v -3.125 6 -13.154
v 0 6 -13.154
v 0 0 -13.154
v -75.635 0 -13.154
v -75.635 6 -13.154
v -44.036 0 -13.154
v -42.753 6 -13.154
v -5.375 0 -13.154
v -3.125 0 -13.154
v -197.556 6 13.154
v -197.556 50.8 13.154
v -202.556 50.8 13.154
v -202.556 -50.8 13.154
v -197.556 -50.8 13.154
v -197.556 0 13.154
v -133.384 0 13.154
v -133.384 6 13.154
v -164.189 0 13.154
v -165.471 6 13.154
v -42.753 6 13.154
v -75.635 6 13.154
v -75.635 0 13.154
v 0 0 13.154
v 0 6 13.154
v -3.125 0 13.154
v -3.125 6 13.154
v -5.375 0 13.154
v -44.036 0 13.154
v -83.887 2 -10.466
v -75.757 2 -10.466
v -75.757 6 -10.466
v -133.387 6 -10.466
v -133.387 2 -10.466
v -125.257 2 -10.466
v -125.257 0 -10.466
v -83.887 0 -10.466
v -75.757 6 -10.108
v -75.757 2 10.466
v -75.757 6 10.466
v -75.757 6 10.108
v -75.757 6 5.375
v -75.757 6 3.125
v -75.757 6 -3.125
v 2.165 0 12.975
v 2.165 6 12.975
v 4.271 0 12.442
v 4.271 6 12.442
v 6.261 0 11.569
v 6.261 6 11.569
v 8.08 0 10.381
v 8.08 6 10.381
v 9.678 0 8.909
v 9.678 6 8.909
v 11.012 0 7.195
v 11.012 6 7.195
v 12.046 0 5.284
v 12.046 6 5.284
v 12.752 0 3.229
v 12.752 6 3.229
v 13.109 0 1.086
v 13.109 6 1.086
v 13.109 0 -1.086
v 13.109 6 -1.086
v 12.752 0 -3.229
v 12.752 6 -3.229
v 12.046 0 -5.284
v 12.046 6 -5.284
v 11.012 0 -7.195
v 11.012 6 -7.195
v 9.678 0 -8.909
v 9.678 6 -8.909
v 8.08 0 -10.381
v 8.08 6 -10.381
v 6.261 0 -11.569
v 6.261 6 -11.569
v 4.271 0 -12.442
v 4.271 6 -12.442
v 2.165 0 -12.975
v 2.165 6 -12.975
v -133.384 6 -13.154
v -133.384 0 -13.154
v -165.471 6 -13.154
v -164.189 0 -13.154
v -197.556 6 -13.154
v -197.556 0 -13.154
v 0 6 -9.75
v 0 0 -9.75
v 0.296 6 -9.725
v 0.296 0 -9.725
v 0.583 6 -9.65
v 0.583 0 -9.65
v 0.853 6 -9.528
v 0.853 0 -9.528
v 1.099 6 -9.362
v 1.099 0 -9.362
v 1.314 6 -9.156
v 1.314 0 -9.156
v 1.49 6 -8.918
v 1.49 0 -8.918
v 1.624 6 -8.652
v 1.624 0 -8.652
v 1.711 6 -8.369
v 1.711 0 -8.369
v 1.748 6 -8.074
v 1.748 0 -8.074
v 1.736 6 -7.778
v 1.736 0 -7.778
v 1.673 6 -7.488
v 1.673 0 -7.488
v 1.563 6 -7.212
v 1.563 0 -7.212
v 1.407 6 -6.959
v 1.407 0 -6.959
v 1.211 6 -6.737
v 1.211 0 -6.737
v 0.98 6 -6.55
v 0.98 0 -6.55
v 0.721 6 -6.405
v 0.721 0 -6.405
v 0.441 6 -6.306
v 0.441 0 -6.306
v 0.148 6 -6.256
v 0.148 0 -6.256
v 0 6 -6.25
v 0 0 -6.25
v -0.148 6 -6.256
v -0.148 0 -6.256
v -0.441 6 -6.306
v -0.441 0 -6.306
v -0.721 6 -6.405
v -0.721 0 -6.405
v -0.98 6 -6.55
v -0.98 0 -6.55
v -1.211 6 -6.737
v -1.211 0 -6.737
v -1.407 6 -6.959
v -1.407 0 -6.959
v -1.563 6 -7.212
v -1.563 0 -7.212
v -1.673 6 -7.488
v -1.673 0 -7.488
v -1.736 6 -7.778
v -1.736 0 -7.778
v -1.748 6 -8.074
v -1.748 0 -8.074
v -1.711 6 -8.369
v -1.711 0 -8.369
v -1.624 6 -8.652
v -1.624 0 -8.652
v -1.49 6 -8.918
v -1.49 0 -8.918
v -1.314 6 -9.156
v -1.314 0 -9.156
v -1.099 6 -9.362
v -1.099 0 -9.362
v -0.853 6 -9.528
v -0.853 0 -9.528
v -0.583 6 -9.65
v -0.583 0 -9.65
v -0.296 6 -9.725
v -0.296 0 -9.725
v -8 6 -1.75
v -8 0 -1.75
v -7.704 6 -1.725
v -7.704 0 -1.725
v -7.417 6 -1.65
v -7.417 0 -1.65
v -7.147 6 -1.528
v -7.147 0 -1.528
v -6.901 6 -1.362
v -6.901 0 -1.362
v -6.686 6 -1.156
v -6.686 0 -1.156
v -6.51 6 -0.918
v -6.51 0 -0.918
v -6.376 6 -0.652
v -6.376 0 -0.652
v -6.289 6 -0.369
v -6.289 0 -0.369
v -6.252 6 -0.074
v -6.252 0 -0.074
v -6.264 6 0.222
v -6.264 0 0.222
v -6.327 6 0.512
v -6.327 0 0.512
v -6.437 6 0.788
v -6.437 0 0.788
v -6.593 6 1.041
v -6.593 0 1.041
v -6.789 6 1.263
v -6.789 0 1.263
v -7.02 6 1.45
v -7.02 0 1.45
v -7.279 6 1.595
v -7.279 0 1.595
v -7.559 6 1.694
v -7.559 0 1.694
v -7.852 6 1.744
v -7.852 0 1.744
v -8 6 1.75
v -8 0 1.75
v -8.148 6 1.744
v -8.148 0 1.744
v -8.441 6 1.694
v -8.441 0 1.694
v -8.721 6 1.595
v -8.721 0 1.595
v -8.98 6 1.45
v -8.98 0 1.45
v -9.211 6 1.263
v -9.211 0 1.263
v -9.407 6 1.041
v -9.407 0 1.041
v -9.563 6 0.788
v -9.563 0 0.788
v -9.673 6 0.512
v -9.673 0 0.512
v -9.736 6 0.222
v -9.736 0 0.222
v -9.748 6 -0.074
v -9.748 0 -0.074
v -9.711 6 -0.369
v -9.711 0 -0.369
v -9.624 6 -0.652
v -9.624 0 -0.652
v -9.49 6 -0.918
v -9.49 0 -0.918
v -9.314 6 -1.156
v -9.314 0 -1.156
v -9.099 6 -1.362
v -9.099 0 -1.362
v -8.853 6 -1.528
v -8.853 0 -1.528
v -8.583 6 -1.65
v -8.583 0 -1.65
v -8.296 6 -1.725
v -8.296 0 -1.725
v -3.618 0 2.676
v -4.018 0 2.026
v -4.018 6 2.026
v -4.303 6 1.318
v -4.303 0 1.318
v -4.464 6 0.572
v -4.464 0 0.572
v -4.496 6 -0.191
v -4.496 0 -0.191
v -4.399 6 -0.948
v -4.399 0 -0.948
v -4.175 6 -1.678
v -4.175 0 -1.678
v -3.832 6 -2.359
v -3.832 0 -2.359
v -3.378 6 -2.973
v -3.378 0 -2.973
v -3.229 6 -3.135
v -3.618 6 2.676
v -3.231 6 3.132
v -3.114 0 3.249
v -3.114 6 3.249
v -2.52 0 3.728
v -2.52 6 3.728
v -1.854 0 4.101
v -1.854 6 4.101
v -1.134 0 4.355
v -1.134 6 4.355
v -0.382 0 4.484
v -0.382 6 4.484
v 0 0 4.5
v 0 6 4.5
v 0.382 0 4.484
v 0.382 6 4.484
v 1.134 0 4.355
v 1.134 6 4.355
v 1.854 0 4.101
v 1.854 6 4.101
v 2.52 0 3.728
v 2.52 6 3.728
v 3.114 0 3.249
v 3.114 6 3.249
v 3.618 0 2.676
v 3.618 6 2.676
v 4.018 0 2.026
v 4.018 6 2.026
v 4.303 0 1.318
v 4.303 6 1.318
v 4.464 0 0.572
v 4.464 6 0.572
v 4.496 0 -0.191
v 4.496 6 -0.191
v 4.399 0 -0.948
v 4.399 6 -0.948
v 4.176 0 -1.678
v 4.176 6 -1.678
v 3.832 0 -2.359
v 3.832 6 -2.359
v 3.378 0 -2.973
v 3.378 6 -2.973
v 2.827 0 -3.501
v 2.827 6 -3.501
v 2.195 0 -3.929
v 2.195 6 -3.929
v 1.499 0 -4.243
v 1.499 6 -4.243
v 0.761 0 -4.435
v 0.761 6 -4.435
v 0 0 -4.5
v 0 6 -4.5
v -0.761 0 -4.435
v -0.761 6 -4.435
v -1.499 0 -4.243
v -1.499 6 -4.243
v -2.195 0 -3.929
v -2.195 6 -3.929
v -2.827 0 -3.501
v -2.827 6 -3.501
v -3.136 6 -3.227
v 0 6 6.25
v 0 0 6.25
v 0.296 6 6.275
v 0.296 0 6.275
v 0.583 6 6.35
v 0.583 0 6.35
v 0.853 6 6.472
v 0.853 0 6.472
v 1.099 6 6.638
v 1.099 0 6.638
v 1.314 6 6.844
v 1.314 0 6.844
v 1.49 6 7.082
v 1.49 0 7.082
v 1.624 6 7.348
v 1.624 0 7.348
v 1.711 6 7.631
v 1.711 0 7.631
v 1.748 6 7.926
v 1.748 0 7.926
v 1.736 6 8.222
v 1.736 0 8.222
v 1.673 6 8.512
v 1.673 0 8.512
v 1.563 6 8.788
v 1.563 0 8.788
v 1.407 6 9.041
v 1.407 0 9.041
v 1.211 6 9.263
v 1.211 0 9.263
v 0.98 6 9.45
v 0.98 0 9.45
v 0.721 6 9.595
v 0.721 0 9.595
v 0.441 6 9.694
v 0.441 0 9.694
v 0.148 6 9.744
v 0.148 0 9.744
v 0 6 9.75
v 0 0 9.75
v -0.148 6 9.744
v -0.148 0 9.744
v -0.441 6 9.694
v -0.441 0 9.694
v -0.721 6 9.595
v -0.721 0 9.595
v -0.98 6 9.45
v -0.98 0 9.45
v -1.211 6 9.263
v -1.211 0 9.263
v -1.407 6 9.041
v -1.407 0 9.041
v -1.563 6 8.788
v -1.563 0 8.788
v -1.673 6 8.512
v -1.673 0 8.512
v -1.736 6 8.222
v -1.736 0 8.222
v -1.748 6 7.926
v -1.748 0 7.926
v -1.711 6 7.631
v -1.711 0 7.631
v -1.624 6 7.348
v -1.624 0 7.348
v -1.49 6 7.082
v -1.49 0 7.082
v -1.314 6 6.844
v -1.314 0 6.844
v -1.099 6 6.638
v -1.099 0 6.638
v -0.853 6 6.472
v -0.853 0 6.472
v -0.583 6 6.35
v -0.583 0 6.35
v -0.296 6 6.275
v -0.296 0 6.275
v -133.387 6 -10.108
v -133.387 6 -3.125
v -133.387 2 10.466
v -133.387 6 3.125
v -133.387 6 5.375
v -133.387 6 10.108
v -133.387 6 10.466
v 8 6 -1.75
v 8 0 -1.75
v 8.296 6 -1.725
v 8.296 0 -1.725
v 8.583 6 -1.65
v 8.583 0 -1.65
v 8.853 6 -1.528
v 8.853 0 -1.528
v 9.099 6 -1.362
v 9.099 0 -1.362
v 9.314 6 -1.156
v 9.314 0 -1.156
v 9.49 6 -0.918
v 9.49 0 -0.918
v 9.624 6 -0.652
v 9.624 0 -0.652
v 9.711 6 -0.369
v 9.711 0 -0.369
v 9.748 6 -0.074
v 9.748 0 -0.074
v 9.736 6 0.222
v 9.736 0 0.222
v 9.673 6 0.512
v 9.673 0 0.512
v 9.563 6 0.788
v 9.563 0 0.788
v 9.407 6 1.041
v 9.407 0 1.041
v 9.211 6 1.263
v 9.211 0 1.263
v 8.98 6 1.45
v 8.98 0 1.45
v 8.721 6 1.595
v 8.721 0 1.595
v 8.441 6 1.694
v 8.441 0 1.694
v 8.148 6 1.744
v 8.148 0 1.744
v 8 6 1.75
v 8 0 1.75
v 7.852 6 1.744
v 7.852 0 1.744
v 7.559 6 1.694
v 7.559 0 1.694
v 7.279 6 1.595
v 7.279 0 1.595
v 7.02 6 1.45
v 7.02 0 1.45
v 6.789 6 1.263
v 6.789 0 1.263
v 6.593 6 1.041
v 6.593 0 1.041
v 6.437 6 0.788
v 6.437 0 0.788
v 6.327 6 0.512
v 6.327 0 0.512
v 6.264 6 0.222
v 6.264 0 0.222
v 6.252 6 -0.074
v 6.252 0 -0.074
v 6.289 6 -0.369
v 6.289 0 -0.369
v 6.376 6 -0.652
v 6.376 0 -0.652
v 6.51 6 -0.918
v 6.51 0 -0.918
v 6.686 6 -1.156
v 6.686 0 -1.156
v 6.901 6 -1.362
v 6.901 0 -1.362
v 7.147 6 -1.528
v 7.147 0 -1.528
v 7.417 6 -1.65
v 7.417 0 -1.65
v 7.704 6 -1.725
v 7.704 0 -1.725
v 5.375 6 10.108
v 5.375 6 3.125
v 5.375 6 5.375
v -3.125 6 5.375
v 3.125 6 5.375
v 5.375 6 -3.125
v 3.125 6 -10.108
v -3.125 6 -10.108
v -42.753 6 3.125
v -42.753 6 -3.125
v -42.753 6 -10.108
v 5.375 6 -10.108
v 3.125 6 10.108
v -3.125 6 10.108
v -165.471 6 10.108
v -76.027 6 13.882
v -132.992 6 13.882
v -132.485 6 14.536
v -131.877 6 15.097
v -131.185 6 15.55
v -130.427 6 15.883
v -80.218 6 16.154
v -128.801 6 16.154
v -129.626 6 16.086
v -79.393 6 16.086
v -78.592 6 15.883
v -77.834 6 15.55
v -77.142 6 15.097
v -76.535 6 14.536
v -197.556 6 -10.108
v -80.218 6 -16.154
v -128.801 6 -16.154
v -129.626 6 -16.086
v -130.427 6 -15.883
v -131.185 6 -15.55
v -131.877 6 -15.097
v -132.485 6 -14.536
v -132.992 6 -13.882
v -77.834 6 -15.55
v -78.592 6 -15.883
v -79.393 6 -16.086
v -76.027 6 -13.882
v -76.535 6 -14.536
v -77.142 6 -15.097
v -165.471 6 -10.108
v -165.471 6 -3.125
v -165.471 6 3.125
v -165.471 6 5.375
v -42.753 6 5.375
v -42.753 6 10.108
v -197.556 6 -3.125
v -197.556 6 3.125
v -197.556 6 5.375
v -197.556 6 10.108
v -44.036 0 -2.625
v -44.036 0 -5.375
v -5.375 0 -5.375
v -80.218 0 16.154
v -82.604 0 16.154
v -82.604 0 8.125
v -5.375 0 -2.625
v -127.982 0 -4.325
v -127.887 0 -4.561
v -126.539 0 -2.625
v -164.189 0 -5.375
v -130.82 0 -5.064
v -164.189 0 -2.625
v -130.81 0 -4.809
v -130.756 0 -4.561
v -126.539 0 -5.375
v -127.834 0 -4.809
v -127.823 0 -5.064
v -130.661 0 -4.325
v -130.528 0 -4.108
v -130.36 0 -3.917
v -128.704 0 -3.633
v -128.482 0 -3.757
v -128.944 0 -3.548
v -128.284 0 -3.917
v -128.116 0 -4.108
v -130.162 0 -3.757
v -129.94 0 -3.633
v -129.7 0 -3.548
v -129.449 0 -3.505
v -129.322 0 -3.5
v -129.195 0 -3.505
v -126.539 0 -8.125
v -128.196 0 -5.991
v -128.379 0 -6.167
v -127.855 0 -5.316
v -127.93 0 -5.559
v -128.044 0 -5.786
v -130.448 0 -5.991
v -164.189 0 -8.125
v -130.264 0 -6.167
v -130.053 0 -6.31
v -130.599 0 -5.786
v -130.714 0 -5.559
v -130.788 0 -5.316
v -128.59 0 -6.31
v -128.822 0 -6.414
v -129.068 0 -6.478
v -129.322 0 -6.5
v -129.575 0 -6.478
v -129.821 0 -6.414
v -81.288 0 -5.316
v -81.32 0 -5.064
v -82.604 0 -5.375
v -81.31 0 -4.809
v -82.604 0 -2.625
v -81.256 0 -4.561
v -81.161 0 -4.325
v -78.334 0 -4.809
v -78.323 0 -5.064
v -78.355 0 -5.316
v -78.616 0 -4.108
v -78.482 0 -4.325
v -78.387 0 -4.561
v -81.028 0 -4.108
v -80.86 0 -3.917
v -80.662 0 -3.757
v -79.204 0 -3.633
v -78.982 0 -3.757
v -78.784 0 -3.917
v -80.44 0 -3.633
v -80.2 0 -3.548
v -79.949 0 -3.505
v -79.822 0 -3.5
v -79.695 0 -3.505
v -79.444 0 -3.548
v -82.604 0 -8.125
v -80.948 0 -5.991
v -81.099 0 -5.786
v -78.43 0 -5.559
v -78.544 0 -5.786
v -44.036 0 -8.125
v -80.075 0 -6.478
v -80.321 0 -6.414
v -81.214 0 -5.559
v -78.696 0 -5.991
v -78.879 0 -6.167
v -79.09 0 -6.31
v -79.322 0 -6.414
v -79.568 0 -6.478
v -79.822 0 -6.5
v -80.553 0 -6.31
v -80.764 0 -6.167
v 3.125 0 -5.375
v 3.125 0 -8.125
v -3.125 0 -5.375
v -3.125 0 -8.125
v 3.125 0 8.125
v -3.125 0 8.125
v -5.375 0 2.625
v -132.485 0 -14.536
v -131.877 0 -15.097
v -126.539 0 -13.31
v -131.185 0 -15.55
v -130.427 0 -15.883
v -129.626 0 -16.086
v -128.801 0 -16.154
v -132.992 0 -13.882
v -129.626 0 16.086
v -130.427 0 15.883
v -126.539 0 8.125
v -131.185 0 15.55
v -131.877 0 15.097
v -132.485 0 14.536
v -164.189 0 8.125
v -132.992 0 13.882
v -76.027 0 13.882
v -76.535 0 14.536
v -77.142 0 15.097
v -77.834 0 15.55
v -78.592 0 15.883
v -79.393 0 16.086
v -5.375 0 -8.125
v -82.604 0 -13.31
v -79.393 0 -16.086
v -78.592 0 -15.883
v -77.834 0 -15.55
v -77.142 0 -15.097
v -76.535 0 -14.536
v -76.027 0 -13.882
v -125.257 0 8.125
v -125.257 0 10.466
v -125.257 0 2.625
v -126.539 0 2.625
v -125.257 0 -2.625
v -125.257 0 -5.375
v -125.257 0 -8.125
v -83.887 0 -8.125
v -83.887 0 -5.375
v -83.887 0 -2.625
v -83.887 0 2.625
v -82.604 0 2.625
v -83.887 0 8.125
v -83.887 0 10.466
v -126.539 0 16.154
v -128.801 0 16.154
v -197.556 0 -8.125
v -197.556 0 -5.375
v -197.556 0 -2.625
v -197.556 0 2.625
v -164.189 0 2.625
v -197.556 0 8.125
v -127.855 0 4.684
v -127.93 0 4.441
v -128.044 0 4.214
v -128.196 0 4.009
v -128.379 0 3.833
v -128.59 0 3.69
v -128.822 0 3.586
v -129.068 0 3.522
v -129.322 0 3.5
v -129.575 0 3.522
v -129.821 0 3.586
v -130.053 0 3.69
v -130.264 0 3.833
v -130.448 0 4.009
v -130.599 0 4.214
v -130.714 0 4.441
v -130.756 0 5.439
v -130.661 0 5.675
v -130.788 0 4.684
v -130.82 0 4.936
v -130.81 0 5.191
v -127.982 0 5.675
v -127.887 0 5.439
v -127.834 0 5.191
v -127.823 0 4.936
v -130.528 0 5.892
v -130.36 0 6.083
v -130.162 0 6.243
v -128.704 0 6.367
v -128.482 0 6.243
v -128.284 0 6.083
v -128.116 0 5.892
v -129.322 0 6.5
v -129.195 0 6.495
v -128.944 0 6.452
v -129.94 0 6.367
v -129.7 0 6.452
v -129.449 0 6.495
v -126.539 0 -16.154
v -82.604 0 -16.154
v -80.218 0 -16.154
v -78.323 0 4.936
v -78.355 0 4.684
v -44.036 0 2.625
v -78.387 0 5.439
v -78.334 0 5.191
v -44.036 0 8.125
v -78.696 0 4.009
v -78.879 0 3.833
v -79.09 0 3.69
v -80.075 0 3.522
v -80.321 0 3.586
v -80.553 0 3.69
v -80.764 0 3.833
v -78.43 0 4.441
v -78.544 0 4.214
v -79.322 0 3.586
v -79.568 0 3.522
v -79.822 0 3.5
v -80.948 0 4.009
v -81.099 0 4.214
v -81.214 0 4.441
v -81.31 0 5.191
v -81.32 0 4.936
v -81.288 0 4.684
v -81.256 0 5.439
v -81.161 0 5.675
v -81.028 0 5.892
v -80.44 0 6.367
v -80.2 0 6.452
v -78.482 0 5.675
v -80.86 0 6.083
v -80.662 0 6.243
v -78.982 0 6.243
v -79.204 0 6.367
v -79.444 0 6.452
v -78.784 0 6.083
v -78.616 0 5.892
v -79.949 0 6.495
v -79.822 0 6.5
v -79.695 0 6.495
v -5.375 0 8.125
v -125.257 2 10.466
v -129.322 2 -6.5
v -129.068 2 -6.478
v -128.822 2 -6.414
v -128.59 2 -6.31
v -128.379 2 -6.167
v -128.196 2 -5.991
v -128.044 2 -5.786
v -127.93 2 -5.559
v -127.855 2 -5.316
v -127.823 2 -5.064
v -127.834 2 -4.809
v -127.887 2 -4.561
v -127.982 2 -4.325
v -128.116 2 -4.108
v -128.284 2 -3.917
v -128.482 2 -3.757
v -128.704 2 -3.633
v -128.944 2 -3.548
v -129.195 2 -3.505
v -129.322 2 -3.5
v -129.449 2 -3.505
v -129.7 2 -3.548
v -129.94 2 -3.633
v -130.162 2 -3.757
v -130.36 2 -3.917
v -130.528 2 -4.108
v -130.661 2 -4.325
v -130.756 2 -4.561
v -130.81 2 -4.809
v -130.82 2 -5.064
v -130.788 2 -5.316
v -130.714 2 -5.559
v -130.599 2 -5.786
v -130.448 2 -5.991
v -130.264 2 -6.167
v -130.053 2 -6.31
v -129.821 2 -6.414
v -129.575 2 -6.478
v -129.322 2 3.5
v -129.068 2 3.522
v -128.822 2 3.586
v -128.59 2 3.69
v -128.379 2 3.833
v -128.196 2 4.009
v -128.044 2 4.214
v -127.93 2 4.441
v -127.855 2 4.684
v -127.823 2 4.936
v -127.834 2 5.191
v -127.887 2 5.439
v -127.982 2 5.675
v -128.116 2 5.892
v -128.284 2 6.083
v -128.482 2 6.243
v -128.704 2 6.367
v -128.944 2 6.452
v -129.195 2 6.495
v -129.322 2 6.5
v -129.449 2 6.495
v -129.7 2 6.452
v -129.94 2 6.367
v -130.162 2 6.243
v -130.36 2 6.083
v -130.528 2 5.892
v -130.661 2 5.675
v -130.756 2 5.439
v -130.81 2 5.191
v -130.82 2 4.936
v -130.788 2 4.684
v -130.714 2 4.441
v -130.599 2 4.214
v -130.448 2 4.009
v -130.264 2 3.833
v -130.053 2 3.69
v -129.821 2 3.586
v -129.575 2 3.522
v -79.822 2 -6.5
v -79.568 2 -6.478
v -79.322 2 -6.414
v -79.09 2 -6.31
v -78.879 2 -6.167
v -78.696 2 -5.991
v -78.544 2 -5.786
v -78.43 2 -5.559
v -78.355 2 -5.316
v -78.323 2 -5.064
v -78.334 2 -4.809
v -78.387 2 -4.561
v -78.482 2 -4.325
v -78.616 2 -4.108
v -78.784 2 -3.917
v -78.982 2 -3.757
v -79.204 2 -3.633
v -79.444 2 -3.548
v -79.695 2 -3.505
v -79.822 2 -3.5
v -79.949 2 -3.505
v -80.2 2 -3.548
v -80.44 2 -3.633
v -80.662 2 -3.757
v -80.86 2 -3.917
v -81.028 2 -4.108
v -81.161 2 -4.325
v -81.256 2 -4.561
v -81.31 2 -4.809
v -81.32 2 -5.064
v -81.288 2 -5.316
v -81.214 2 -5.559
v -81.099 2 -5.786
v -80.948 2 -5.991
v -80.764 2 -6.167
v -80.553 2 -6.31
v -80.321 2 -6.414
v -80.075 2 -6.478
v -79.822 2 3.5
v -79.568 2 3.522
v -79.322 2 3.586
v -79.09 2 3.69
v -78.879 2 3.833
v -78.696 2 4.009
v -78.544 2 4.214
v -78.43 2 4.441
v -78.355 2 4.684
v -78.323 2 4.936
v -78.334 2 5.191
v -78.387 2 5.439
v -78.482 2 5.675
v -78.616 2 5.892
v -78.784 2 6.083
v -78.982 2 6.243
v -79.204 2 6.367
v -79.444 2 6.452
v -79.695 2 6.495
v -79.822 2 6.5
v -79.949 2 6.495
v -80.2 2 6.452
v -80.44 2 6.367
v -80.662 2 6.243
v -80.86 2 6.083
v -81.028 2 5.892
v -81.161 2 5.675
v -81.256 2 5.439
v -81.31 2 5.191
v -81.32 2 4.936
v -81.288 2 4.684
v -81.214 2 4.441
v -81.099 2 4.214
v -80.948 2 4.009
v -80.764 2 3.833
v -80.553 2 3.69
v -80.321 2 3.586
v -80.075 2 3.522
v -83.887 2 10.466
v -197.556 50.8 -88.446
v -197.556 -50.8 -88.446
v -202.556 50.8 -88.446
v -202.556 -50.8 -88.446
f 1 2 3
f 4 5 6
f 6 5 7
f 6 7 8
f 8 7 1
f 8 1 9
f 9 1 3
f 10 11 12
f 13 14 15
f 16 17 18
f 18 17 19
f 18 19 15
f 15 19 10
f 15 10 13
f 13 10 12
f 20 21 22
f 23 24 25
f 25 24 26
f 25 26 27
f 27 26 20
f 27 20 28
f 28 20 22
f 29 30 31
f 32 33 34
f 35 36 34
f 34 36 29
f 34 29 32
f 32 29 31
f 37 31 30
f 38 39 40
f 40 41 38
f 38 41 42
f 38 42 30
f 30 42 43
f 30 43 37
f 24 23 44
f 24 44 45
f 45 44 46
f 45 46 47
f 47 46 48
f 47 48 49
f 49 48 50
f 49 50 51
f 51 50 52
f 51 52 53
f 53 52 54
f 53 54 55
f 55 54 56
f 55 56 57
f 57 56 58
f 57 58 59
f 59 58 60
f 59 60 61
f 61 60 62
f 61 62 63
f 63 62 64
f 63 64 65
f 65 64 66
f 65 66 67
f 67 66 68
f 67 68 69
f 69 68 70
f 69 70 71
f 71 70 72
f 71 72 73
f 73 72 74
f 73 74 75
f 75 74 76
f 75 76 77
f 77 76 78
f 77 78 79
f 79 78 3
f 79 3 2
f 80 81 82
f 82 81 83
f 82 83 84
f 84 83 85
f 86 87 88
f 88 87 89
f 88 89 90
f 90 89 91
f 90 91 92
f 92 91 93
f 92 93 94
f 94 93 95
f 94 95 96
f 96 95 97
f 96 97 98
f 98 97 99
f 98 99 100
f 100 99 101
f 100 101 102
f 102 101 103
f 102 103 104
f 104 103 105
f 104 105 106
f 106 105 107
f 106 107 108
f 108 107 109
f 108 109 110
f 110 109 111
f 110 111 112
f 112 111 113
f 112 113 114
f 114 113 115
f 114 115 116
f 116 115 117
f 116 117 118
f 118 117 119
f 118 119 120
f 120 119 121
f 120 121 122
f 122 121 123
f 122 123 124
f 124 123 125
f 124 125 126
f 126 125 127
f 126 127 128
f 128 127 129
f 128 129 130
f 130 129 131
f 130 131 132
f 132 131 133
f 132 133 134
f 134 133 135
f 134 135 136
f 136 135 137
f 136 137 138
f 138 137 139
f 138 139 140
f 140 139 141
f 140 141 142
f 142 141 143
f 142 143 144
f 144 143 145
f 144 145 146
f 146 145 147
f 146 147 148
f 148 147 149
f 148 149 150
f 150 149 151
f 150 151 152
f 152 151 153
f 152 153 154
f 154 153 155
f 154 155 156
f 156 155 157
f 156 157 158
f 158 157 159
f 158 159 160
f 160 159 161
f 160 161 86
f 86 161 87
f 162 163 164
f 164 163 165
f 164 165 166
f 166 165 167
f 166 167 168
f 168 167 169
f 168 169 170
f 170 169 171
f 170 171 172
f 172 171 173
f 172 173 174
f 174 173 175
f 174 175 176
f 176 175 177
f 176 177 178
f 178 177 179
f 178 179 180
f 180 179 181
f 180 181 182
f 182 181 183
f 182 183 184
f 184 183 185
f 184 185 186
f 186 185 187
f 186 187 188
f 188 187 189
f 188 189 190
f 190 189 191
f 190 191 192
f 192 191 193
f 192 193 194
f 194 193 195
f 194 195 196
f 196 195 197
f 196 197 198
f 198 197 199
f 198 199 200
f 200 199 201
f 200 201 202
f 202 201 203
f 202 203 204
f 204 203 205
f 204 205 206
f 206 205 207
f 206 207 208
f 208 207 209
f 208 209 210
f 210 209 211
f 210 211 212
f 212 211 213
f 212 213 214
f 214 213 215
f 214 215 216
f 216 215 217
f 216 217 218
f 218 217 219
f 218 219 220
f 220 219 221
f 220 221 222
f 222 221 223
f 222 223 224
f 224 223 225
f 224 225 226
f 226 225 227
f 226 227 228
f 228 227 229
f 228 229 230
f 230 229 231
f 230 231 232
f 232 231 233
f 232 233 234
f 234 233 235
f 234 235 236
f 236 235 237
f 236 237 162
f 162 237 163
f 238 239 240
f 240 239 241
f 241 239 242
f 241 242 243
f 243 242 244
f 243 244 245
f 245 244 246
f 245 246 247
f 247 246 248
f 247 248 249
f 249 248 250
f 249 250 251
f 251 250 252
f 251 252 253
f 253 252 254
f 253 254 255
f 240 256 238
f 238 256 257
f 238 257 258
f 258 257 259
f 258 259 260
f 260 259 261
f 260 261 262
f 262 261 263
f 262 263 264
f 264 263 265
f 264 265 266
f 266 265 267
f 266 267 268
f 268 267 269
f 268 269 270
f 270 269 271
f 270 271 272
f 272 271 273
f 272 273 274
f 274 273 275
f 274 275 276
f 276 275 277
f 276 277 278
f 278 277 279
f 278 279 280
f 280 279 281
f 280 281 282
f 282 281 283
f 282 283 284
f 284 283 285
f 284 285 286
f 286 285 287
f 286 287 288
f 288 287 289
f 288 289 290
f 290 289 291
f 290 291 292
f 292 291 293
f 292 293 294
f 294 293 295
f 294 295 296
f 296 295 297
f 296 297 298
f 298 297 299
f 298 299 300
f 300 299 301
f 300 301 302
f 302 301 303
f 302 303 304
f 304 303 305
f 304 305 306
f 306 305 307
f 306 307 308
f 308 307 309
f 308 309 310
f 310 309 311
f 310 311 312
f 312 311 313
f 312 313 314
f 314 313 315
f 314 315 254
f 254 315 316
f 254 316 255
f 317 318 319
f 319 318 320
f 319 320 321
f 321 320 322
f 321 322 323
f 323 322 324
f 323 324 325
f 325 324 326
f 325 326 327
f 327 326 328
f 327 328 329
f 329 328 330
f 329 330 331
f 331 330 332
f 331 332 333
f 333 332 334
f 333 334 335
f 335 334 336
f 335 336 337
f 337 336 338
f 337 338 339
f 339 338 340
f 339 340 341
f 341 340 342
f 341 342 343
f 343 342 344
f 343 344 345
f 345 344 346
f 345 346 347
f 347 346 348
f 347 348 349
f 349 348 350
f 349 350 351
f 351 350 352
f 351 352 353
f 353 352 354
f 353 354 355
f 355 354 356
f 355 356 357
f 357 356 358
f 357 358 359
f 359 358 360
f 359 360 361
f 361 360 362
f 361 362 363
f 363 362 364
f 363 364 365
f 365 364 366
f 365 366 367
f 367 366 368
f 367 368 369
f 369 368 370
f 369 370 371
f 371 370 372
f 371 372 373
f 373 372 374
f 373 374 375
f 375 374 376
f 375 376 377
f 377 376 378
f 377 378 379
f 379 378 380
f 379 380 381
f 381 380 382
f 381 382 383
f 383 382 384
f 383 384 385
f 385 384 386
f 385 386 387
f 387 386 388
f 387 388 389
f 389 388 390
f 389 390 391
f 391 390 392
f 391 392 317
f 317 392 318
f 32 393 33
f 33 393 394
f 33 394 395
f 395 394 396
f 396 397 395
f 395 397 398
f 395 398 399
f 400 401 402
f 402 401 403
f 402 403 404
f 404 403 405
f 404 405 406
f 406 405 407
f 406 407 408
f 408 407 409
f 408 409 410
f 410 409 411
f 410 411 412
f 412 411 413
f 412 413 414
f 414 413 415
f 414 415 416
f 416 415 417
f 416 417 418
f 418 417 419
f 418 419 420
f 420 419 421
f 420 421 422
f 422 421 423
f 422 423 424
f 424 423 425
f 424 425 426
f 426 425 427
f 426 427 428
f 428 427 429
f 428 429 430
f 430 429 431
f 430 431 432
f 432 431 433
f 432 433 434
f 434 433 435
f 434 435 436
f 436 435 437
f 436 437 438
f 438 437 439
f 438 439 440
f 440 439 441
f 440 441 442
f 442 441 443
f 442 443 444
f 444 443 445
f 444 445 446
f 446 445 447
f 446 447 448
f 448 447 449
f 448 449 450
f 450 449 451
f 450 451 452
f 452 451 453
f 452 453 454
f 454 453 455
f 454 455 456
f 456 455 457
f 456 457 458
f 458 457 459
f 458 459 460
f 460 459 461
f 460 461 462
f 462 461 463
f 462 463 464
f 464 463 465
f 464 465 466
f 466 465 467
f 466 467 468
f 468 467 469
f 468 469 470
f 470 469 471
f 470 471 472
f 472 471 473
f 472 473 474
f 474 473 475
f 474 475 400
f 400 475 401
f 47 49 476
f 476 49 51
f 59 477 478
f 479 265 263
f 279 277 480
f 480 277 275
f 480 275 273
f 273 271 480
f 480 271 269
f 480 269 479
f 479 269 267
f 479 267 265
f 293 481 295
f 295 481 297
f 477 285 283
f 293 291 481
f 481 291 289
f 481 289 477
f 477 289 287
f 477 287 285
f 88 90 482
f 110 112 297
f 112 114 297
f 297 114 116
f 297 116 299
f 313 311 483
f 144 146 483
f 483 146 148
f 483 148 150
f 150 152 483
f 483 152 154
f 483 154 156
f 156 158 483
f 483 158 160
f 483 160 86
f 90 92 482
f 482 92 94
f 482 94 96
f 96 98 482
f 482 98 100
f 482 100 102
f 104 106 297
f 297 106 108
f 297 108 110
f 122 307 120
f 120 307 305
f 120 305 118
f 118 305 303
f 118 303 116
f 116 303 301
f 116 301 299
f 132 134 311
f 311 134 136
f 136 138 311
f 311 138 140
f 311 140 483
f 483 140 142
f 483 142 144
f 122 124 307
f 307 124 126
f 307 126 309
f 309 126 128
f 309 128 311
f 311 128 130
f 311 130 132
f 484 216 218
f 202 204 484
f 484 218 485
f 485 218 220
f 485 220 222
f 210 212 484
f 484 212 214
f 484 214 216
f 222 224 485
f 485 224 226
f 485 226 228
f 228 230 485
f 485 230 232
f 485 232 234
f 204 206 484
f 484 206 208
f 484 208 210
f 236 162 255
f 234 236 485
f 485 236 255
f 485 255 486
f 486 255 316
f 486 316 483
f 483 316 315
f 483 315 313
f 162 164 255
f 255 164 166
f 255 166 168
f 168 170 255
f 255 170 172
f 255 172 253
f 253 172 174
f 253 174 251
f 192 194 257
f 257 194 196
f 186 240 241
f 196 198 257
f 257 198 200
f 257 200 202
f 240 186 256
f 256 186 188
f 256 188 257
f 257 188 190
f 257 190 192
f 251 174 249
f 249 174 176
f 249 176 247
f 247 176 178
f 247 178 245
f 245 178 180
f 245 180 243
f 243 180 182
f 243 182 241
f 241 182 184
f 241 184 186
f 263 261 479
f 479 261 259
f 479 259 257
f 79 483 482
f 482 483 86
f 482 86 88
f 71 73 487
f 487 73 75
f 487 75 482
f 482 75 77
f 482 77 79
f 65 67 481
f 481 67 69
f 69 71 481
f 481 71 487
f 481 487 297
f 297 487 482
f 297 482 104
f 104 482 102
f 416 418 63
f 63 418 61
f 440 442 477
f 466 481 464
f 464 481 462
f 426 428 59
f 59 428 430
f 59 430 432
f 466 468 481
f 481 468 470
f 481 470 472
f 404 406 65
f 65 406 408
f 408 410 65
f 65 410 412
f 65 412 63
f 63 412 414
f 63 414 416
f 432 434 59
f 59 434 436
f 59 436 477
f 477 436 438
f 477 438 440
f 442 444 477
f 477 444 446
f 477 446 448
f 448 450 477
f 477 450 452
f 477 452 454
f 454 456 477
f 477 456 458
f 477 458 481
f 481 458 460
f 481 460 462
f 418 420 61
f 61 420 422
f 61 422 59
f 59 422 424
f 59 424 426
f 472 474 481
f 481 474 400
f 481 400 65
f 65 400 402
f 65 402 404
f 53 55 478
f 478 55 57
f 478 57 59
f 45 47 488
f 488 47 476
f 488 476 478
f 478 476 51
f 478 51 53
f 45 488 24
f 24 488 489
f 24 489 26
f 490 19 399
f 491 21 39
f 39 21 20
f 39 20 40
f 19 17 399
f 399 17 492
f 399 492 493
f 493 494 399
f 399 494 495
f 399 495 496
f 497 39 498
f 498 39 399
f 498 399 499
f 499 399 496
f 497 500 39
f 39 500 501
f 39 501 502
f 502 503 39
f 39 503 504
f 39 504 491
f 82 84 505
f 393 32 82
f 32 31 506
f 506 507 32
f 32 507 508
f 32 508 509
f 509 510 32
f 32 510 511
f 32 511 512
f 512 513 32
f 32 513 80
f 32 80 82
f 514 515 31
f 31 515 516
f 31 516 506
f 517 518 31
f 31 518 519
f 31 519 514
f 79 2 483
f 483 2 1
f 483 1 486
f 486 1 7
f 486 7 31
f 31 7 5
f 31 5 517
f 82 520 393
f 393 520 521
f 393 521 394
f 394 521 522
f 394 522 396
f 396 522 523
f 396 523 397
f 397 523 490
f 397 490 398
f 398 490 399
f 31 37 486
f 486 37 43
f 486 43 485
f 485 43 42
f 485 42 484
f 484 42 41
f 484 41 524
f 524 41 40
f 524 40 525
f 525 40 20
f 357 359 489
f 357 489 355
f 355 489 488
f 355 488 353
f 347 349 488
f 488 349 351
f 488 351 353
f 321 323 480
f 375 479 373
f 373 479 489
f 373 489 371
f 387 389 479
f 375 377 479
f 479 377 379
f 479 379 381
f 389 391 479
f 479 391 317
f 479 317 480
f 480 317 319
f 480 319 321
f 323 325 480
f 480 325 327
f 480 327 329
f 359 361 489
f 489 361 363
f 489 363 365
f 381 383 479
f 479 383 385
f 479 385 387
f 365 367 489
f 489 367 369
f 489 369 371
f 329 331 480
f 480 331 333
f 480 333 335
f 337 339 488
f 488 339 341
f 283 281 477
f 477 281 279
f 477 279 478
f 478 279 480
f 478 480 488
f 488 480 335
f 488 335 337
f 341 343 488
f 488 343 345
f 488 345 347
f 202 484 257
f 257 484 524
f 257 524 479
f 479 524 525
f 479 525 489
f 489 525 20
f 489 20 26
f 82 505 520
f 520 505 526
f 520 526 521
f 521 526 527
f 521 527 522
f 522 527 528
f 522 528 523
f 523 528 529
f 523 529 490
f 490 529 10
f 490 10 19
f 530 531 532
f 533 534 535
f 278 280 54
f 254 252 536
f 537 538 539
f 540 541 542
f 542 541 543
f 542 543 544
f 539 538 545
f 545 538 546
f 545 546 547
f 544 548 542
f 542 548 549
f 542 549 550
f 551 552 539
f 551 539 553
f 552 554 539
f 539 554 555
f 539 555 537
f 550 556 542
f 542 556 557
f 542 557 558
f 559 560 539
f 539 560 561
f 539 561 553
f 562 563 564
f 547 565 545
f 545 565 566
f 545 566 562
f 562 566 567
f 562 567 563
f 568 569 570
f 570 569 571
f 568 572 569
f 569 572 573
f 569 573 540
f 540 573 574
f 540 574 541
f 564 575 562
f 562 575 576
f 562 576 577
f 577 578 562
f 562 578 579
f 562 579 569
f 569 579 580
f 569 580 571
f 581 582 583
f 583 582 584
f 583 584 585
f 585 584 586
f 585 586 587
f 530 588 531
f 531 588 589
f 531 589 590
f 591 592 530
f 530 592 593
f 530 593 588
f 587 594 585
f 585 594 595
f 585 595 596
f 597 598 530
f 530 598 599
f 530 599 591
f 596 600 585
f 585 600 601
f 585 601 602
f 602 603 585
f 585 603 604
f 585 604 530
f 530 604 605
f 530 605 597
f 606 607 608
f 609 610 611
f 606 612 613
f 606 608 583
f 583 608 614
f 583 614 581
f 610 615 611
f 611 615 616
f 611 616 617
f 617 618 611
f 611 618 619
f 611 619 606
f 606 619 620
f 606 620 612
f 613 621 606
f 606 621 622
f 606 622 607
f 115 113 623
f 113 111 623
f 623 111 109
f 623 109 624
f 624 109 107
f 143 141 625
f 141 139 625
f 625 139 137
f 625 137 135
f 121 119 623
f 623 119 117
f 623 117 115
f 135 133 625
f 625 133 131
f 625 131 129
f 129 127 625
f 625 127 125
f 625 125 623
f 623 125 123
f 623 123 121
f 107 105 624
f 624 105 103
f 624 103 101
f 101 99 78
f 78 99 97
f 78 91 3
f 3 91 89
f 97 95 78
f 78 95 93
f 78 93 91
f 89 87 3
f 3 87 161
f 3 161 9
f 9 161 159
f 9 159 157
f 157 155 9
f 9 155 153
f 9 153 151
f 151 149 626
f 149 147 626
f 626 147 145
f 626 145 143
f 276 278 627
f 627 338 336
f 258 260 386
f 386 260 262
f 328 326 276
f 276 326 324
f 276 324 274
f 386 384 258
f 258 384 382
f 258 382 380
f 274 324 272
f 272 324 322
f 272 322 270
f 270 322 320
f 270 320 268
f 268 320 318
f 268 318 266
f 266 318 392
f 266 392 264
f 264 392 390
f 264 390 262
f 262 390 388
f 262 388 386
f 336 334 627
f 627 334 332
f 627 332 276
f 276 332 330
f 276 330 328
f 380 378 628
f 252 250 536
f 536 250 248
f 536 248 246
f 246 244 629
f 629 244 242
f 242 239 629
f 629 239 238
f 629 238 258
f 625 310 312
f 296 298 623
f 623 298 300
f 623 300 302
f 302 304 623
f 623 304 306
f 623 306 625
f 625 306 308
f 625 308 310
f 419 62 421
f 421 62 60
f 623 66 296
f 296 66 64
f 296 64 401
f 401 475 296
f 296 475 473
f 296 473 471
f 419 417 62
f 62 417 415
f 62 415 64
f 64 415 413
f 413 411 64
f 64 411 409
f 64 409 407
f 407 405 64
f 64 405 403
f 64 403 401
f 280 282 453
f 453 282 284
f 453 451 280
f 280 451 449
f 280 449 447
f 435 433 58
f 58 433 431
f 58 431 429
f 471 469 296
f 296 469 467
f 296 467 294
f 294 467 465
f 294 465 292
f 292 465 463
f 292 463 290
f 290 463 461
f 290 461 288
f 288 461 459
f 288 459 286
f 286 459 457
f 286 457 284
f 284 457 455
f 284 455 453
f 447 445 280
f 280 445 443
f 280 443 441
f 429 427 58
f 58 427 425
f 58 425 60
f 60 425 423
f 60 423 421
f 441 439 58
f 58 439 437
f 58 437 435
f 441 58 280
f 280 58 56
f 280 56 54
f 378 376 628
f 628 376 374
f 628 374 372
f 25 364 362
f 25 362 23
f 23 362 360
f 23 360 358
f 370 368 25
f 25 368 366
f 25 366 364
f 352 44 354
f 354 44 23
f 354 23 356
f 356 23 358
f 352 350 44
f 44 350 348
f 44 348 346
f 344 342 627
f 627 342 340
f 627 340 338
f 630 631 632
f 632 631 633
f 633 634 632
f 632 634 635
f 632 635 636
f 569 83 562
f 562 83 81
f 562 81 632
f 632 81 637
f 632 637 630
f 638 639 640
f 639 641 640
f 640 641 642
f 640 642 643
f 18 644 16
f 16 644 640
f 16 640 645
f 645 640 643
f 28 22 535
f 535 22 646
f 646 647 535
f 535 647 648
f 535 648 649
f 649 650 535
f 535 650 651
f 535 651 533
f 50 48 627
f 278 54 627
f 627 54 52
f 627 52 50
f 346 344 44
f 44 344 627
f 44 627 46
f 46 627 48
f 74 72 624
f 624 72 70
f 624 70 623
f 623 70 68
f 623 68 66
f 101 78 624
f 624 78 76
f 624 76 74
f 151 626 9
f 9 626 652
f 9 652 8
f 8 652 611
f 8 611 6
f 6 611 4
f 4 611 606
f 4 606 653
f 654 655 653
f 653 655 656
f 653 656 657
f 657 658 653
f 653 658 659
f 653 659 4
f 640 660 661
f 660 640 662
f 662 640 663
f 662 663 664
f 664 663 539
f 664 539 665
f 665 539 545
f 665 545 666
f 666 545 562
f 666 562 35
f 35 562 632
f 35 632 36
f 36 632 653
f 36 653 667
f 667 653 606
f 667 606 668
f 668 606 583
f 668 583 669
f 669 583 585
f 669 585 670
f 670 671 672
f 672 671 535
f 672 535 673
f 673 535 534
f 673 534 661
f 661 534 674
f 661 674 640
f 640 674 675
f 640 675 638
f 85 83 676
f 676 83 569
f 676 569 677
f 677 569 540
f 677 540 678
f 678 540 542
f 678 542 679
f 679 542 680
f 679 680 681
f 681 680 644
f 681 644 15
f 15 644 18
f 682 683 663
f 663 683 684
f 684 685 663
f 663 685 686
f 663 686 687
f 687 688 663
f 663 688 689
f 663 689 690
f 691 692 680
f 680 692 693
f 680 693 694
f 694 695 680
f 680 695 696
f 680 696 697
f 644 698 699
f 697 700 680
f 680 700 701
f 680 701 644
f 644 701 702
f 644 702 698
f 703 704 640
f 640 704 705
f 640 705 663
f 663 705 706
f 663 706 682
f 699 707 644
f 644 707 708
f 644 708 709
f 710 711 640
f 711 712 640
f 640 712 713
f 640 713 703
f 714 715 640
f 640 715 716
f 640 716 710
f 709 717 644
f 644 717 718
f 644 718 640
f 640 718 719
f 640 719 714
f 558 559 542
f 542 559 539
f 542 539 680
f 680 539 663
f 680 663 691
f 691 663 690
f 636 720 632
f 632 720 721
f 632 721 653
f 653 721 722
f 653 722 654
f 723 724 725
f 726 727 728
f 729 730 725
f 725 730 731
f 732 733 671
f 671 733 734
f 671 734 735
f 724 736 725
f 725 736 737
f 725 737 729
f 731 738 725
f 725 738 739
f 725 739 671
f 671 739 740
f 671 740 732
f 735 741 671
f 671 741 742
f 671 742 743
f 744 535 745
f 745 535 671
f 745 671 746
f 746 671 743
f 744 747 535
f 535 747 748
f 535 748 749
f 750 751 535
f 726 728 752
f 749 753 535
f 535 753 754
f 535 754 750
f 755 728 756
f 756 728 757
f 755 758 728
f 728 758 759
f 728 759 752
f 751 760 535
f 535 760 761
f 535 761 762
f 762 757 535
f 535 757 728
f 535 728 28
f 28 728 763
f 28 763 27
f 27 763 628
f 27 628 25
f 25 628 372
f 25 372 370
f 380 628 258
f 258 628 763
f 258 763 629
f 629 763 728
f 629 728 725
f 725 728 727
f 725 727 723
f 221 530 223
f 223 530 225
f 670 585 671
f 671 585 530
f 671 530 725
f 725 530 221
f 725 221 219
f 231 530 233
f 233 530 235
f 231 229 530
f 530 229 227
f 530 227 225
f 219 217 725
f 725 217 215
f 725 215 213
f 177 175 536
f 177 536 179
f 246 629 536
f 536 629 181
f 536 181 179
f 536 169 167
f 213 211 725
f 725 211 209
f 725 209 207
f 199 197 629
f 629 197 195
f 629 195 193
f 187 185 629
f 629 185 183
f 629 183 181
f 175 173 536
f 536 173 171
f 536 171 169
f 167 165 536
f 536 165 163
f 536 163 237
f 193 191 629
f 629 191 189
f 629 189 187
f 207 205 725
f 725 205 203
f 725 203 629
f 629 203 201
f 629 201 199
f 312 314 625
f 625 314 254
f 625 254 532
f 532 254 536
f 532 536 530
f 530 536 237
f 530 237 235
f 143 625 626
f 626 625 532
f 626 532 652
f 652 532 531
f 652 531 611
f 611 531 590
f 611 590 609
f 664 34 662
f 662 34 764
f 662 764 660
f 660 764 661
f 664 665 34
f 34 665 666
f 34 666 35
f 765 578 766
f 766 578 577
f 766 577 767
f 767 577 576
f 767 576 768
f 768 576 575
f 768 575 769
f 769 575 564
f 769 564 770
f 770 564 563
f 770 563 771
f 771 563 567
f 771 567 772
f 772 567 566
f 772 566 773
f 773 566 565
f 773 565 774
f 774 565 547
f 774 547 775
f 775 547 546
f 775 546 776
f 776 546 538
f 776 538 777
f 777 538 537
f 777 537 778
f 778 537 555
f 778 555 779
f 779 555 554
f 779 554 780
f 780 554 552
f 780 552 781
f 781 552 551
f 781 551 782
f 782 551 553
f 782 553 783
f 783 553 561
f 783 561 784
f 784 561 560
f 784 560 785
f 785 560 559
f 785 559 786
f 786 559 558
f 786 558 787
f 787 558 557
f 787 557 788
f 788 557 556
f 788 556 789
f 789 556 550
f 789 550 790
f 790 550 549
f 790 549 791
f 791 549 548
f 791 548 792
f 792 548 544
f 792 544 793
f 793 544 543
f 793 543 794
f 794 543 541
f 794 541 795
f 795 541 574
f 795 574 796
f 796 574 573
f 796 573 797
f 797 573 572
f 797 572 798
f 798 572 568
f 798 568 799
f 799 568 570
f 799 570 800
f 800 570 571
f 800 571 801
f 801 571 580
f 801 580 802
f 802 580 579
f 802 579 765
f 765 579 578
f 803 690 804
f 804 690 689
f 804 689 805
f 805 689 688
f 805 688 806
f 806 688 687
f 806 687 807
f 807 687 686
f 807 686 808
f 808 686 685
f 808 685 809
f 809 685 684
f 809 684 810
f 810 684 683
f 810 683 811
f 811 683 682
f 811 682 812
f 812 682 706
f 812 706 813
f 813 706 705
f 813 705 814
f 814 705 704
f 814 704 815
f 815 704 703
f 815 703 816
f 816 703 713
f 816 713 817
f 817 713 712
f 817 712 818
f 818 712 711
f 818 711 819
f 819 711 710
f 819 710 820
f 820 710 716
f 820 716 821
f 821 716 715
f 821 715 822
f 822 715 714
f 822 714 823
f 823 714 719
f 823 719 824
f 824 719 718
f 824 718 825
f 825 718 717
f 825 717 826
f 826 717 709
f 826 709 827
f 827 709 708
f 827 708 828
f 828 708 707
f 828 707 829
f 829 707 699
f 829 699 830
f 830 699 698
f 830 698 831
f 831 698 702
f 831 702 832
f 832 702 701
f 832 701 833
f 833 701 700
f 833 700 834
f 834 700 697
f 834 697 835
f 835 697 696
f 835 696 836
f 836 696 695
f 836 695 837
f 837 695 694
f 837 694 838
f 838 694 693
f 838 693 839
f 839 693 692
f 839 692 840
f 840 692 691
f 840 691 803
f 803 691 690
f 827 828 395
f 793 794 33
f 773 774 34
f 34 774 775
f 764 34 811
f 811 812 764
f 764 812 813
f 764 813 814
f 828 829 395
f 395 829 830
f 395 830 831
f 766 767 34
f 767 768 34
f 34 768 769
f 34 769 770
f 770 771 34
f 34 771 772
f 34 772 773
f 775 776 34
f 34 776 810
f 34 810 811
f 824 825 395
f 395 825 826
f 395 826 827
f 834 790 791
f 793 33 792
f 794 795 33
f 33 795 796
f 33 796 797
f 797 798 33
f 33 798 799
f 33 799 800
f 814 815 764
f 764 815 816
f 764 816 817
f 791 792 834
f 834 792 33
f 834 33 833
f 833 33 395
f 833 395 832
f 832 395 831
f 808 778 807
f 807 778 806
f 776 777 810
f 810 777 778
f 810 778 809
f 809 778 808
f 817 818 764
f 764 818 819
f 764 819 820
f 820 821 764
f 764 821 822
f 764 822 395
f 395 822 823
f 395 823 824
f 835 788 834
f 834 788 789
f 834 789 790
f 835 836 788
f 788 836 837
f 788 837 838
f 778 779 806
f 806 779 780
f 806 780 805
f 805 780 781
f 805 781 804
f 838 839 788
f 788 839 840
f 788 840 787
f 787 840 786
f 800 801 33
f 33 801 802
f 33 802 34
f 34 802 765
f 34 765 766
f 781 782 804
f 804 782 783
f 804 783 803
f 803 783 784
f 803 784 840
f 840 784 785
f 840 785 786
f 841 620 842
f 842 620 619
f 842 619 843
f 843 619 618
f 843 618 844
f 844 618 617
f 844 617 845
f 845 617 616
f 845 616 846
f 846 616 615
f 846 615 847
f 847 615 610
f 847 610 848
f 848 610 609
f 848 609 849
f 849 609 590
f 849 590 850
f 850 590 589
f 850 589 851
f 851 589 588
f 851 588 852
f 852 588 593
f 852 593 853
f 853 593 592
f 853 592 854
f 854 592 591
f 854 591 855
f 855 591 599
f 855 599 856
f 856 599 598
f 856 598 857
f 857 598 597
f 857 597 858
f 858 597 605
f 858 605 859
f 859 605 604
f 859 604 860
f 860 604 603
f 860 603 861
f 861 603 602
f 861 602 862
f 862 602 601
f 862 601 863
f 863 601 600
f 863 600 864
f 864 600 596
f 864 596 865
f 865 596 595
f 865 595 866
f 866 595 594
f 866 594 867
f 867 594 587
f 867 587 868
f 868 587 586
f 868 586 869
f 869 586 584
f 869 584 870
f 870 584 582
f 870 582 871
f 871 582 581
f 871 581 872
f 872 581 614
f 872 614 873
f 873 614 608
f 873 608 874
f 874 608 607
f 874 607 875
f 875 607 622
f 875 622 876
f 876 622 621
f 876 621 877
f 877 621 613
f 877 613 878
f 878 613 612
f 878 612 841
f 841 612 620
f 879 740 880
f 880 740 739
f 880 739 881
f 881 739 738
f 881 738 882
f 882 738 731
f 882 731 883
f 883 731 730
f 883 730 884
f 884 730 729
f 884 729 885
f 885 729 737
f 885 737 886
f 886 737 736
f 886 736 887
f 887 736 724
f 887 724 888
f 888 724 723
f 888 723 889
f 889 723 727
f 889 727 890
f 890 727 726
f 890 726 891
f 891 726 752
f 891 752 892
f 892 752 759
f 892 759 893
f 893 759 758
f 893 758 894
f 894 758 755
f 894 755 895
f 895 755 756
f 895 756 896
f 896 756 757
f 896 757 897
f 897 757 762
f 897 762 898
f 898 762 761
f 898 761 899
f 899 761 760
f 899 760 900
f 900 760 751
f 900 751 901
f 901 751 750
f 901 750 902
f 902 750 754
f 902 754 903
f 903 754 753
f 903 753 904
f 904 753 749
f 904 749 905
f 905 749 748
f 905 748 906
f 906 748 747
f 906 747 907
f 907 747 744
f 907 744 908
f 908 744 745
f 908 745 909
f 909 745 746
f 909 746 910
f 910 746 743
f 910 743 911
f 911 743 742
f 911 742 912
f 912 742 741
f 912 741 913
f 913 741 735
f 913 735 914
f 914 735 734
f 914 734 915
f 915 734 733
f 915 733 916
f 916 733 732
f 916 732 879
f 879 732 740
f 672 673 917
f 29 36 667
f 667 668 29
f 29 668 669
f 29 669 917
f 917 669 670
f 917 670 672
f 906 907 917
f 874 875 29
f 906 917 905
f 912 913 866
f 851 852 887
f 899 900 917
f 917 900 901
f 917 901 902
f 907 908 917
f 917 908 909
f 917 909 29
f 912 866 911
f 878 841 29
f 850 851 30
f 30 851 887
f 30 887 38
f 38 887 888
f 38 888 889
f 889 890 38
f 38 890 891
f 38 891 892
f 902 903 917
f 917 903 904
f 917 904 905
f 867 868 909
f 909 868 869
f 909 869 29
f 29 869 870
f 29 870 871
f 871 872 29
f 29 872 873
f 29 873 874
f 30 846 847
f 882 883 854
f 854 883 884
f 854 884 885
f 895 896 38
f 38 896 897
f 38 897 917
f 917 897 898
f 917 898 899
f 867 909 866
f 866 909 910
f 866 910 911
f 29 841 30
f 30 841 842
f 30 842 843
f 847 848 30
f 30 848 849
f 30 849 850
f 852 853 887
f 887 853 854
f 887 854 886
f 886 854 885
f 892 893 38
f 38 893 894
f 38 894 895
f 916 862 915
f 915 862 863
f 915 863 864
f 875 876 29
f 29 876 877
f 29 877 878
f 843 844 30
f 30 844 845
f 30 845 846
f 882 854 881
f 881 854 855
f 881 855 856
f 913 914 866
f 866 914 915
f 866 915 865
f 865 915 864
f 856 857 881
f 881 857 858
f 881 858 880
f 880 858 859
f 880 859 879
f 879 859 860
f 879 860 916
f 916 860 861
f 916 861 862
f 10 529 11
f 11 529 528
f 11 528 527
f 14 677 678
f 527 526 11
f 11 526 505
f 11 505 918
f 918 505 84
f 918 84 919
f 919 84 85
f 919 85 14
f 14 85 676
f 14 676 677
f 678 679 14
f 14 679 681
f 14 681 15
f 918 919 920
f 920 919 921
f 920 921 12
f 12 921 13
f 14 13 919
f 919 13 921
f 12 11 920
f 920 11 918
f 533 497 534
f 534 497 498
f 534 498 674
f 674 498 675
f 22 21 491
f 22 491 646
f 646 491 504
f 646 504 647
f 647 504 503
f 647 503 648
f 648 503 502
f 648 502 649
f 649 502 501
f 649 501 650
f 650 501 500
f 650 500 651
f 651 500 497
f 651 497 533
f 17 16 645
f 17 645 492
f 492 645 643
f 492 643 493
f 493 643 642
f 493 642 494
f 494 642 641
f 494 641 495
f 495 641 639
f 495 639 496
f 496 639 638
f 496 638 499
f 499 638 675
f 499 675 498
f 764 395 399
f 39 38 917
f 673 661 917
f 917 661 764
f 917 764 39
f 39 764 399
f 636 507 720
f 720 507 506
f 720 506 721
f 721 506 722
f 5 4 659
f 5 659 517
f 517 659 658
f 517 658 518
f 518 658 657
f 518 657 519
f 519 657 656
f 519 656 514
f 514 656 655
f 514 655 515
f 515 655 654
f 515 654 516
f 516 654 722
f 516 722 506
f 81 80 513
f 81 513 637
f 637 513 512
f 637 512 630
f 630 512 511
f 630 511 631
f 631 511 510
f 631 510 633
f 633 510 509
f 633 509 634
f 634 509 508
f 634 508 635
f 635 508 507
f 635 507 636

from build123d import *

# Parameters (mm, degrees)
SKETCH1_W                = 57.629592668
SKETCH1_H                = 21.211867522
SKETCH1_R                = 1.75
SKETCH1_R_2              = 4.5
BOSS_EXTRUDE1_DEPTH      = 6
SKETCH1_22_W             = 8.129592668
SKETCH1_22_H             = 21.211867522
SKETCH1_22_R             = 1.5
BOSS_EXTRUDE2_DEPTH      = 2
BOSS_EXTRUDE3_DEPTH      = 50.8
BOSS_EXTRUDE3_DEPTH_BACK = 50.8
SKETCH1_23_W             = 5
SKETCH1_23_H             = 75.291254256
SKETCH1_23_H_2           = 26.308745744
SKETCH4_W                = 57.748953374
SKETCH4_H                = 6
BOSS_EXTRUDE4_DEPTH      = 3
FILLET2_R                = 5
FILLET2_OF_MIRROR1_R     = 5


with BuildPart() as part:
    # Sketch1 → Boss-Extrude1 (new body)
    with BuildSketch(Plane(origin=(0, 0, 0), x_dir=(1, 0, 0), z_dir=(0, 1, 0))):
        with BuildLine():
            Line((-197.556308439, -13.154372872), (0, -13.154372872))
            ThreePointArc((0, -13.154372872), (13.154372872, 0), (0, 13.154372872))
            Line((0, 13.154372872), (-197.556308439, 13.154372872))
            Line((-197.556308439, 13.154372872), (-197.556308439, -13.154372872))
        make_face()
        with Locations((-104.57172107, -0.139435446)):
            Rectangle(SKETCH1_W, SKETCH1_H, mode=Mode.SUBTRACT)
        with Locations(Location((0, 8, 0), (0, 0, 270))):
            Circle(SKETCH1_R, mode=Mode.SUBTRACT)
        with Locations(Location((0, -8, 0), (0, 0, 270))):
            Circle(SKETCH1_R, mode=Mode.SUBTRACT)
        with Locations(Location((-8, 0, 0), (0, 0, 270))):
            Circle(SKETCH1_R, mode=Mode.SUBTRACT)
        with Locations(Location((0, 0, 0), (0, 0, 270))):
            Circle(SKETCH1_R_2, mode=Mode.SUBTRACT)
        with Locations(Location((8, 0, 0), (0, 0, 270))):
            Circle(SKETCH1_R, mode=Mode.SUBTRACT)
    boss_extrude1 = extrude(amount=BOSS_EXTRUDE1_DEPTH)

    # Sketch1<22> → Boss-Extrude2 (add)
    # profile 1 of 2: a face of its own
    with BuildSketch(Plane(origin=(0, 0, 0), x_dir=(1, 0, 0), z_dir=(0, 1, 0))):
        with Locations((-129.32172107, -0.139435446)):
            Rectangle(SKETCH1_22_W, SKETCH1_22_H)
        with Locations(Location((-129.32172107, -5, 0), (0, 0, 270))):
            Circle(SKETCH1_22_R, mode=Mode.SUBTRACT)
        with Locations(Location((-129.32172107, 5, 0), (0, 0, 270))):
            Circle(SKETCH1_22_R, mode=Mode.SUBTRACT)
    # profile 2 of 2: a face of its own
    with BuildSketch(Plane(origin=(0, 0, 0), x_dir=(1, 0, 0), z_dir=(0, 1, 0))):
        with Locations((-79.82172107, -0.139435446)):
            Rectangle(SKETCH1_22_W, SKETCH1_22_H)
        with Locations(Location((-79.82172107, -5, 0), (0, 0, 270))):
            Circle(SKETCH1_22_R, mode=Mode.SUBTRACT)
        with Locations(Location((-79.82172107, 5, 0), (0, 0, 270))):
            Circle(SKETCH1_22_R, mode=Mode.SUBTRACT)
    extrude(amount=BOSS_EXTRUDE2_DEPTH)

    # Sketch1<23> → Boss-Extrude3 (add, two sides: drawn at the far end of the back side and taken through both)
    with BuildSketch(Plane(origin=(0, 0, 0), x_dir=(1, 0, 0), z_dir=(0, 1, 0)).offset(-BOSS_EXTRUDE3_DEPTH_BACK)):
        with Locations((-200.056308439, 50.8)):
            Rectangle(SKETCH1_23_W, SKETCH1_23_H)
        with Locations((-200.056308439, 0)):
            Rectangle(SKETCH1_23_W, SKETCH1_23_H_2)
    extrude(amount=BOSS_EXTRUDE3_DEPTH + BOSS_EXTRUDE3_DEPTH_BACK)

    # Sketch4 → Boss-Extrude4 (add)
    with BuildSketch(Plane.XY.offset(13.154372872)):
        with Locations((-104.509525291, 3)):
            Rectangle(SKETCH4_W, SKETCH4_H)
    boss_extrude4 = extrude(amount=BOSS_EXTRUDE4_DEPTH)

    # Fillet2
    # the kernel refuses this fillet: 5 mm, written as the material it takes off along each edge
    with BuildSketch(Plane(origin=(-75.635048604, -11.456439237, 16.154372872), x_dir=(-1, 0, 0), z_dir=(0, 1, 0))) as fillet2_piece_1:
        with BuildLine():
            CenterArc((4.582575695, -5), FILLET2_R, 90, 66.421821522)
            Line((0, -3), (-0.091651514, -2.96))
            ThreePointArc((-0.091651514, -2.96), (-0.1, -1.5), (-0.1, 0))
            Line((-0.1, 0), (0, 0.1))
            Line((0, 0.1), (4.582575695, 0.1))
            Line((4.582575695, 0.1), (4.582575695, 0))
        make_face()
    extrude(amount=28.912878475, mode=Mode.SUBTRACT)
    with BuildSketch(Plane(origin=(-133.384001978, 17.456439237, 16.154372872), x_dir=(0, 0, -1), z_dir=(0, -1, 0))) as fillet2_piece_2:
        with BuildLine():
            CenterArc((5, 4.582575695), FILLET2_R, 180, 66.421821522)
            Line((0, 4.582575695), (-0.1, 4.582575695))
            Line((-0.1, 4.582575695), (-0.1, 0))
            Line((-0.1, 0), (0, -0.1))
            ThreePointArc((0, -0.1), (1.5, -0.1), (2.96, -0.091651514))
            Line((2.96, -0.091651514), (3, 0))
        make_face()
    extrude(amount=28.912878475, mode=Mode.SUBTRACT)

    # Mirror1: Boss-Extrude1, Boss-Extrude4 across plane
    add(boss_extrude1.mirror(Plane(origin=(0, 0, 0), x_dir=(1, 0, 0), z_dir=(0, 0, -1))))
    add(boss_extrude4.mirror(Plane(origin=(0, 0, 0), x_dir=(1, 0, 0), z_dir=(0, 0, -1))))

    # Fillet2 of Mirror1
    # the kernel refuses this fillet: 5 mm, written as the material it takes off along each edge
    with BuildSketch(Plane(origin=(-75.635048604, -11.456439237, -16.154372872), x_dir=(0, 0, 1), z_dir=(0, 1, 0)), Plane(origin=(-133.384001978, 17.456439237, -16.154372872), x_dir=(0, 0, 1), z_dir=(0, -1, 0))) as fillet2_of_mirror1_piece_1:
        with BuildLine():
            CenterArc((5, -4.582575695), FILLET2_OF_MIRROR1_R, 113.578178478, 66.421821522)
            Line((0, -4.582575695), (-0.1, -4.582575695))
            Line((-0.1, -4.582575695), (-0.1, 0))
            Line((-0.1, 0), (0, 0.1))
            ThreePointArc((0, 0.1), (1.5, 0.1), (2.96, 0.091651514))
            Line((2.96, 0.091651514), (3, 0))
        make_face()
    extrude(amount=28.912878475, mode=Mode.SUBTRACT)


solid = part.part
